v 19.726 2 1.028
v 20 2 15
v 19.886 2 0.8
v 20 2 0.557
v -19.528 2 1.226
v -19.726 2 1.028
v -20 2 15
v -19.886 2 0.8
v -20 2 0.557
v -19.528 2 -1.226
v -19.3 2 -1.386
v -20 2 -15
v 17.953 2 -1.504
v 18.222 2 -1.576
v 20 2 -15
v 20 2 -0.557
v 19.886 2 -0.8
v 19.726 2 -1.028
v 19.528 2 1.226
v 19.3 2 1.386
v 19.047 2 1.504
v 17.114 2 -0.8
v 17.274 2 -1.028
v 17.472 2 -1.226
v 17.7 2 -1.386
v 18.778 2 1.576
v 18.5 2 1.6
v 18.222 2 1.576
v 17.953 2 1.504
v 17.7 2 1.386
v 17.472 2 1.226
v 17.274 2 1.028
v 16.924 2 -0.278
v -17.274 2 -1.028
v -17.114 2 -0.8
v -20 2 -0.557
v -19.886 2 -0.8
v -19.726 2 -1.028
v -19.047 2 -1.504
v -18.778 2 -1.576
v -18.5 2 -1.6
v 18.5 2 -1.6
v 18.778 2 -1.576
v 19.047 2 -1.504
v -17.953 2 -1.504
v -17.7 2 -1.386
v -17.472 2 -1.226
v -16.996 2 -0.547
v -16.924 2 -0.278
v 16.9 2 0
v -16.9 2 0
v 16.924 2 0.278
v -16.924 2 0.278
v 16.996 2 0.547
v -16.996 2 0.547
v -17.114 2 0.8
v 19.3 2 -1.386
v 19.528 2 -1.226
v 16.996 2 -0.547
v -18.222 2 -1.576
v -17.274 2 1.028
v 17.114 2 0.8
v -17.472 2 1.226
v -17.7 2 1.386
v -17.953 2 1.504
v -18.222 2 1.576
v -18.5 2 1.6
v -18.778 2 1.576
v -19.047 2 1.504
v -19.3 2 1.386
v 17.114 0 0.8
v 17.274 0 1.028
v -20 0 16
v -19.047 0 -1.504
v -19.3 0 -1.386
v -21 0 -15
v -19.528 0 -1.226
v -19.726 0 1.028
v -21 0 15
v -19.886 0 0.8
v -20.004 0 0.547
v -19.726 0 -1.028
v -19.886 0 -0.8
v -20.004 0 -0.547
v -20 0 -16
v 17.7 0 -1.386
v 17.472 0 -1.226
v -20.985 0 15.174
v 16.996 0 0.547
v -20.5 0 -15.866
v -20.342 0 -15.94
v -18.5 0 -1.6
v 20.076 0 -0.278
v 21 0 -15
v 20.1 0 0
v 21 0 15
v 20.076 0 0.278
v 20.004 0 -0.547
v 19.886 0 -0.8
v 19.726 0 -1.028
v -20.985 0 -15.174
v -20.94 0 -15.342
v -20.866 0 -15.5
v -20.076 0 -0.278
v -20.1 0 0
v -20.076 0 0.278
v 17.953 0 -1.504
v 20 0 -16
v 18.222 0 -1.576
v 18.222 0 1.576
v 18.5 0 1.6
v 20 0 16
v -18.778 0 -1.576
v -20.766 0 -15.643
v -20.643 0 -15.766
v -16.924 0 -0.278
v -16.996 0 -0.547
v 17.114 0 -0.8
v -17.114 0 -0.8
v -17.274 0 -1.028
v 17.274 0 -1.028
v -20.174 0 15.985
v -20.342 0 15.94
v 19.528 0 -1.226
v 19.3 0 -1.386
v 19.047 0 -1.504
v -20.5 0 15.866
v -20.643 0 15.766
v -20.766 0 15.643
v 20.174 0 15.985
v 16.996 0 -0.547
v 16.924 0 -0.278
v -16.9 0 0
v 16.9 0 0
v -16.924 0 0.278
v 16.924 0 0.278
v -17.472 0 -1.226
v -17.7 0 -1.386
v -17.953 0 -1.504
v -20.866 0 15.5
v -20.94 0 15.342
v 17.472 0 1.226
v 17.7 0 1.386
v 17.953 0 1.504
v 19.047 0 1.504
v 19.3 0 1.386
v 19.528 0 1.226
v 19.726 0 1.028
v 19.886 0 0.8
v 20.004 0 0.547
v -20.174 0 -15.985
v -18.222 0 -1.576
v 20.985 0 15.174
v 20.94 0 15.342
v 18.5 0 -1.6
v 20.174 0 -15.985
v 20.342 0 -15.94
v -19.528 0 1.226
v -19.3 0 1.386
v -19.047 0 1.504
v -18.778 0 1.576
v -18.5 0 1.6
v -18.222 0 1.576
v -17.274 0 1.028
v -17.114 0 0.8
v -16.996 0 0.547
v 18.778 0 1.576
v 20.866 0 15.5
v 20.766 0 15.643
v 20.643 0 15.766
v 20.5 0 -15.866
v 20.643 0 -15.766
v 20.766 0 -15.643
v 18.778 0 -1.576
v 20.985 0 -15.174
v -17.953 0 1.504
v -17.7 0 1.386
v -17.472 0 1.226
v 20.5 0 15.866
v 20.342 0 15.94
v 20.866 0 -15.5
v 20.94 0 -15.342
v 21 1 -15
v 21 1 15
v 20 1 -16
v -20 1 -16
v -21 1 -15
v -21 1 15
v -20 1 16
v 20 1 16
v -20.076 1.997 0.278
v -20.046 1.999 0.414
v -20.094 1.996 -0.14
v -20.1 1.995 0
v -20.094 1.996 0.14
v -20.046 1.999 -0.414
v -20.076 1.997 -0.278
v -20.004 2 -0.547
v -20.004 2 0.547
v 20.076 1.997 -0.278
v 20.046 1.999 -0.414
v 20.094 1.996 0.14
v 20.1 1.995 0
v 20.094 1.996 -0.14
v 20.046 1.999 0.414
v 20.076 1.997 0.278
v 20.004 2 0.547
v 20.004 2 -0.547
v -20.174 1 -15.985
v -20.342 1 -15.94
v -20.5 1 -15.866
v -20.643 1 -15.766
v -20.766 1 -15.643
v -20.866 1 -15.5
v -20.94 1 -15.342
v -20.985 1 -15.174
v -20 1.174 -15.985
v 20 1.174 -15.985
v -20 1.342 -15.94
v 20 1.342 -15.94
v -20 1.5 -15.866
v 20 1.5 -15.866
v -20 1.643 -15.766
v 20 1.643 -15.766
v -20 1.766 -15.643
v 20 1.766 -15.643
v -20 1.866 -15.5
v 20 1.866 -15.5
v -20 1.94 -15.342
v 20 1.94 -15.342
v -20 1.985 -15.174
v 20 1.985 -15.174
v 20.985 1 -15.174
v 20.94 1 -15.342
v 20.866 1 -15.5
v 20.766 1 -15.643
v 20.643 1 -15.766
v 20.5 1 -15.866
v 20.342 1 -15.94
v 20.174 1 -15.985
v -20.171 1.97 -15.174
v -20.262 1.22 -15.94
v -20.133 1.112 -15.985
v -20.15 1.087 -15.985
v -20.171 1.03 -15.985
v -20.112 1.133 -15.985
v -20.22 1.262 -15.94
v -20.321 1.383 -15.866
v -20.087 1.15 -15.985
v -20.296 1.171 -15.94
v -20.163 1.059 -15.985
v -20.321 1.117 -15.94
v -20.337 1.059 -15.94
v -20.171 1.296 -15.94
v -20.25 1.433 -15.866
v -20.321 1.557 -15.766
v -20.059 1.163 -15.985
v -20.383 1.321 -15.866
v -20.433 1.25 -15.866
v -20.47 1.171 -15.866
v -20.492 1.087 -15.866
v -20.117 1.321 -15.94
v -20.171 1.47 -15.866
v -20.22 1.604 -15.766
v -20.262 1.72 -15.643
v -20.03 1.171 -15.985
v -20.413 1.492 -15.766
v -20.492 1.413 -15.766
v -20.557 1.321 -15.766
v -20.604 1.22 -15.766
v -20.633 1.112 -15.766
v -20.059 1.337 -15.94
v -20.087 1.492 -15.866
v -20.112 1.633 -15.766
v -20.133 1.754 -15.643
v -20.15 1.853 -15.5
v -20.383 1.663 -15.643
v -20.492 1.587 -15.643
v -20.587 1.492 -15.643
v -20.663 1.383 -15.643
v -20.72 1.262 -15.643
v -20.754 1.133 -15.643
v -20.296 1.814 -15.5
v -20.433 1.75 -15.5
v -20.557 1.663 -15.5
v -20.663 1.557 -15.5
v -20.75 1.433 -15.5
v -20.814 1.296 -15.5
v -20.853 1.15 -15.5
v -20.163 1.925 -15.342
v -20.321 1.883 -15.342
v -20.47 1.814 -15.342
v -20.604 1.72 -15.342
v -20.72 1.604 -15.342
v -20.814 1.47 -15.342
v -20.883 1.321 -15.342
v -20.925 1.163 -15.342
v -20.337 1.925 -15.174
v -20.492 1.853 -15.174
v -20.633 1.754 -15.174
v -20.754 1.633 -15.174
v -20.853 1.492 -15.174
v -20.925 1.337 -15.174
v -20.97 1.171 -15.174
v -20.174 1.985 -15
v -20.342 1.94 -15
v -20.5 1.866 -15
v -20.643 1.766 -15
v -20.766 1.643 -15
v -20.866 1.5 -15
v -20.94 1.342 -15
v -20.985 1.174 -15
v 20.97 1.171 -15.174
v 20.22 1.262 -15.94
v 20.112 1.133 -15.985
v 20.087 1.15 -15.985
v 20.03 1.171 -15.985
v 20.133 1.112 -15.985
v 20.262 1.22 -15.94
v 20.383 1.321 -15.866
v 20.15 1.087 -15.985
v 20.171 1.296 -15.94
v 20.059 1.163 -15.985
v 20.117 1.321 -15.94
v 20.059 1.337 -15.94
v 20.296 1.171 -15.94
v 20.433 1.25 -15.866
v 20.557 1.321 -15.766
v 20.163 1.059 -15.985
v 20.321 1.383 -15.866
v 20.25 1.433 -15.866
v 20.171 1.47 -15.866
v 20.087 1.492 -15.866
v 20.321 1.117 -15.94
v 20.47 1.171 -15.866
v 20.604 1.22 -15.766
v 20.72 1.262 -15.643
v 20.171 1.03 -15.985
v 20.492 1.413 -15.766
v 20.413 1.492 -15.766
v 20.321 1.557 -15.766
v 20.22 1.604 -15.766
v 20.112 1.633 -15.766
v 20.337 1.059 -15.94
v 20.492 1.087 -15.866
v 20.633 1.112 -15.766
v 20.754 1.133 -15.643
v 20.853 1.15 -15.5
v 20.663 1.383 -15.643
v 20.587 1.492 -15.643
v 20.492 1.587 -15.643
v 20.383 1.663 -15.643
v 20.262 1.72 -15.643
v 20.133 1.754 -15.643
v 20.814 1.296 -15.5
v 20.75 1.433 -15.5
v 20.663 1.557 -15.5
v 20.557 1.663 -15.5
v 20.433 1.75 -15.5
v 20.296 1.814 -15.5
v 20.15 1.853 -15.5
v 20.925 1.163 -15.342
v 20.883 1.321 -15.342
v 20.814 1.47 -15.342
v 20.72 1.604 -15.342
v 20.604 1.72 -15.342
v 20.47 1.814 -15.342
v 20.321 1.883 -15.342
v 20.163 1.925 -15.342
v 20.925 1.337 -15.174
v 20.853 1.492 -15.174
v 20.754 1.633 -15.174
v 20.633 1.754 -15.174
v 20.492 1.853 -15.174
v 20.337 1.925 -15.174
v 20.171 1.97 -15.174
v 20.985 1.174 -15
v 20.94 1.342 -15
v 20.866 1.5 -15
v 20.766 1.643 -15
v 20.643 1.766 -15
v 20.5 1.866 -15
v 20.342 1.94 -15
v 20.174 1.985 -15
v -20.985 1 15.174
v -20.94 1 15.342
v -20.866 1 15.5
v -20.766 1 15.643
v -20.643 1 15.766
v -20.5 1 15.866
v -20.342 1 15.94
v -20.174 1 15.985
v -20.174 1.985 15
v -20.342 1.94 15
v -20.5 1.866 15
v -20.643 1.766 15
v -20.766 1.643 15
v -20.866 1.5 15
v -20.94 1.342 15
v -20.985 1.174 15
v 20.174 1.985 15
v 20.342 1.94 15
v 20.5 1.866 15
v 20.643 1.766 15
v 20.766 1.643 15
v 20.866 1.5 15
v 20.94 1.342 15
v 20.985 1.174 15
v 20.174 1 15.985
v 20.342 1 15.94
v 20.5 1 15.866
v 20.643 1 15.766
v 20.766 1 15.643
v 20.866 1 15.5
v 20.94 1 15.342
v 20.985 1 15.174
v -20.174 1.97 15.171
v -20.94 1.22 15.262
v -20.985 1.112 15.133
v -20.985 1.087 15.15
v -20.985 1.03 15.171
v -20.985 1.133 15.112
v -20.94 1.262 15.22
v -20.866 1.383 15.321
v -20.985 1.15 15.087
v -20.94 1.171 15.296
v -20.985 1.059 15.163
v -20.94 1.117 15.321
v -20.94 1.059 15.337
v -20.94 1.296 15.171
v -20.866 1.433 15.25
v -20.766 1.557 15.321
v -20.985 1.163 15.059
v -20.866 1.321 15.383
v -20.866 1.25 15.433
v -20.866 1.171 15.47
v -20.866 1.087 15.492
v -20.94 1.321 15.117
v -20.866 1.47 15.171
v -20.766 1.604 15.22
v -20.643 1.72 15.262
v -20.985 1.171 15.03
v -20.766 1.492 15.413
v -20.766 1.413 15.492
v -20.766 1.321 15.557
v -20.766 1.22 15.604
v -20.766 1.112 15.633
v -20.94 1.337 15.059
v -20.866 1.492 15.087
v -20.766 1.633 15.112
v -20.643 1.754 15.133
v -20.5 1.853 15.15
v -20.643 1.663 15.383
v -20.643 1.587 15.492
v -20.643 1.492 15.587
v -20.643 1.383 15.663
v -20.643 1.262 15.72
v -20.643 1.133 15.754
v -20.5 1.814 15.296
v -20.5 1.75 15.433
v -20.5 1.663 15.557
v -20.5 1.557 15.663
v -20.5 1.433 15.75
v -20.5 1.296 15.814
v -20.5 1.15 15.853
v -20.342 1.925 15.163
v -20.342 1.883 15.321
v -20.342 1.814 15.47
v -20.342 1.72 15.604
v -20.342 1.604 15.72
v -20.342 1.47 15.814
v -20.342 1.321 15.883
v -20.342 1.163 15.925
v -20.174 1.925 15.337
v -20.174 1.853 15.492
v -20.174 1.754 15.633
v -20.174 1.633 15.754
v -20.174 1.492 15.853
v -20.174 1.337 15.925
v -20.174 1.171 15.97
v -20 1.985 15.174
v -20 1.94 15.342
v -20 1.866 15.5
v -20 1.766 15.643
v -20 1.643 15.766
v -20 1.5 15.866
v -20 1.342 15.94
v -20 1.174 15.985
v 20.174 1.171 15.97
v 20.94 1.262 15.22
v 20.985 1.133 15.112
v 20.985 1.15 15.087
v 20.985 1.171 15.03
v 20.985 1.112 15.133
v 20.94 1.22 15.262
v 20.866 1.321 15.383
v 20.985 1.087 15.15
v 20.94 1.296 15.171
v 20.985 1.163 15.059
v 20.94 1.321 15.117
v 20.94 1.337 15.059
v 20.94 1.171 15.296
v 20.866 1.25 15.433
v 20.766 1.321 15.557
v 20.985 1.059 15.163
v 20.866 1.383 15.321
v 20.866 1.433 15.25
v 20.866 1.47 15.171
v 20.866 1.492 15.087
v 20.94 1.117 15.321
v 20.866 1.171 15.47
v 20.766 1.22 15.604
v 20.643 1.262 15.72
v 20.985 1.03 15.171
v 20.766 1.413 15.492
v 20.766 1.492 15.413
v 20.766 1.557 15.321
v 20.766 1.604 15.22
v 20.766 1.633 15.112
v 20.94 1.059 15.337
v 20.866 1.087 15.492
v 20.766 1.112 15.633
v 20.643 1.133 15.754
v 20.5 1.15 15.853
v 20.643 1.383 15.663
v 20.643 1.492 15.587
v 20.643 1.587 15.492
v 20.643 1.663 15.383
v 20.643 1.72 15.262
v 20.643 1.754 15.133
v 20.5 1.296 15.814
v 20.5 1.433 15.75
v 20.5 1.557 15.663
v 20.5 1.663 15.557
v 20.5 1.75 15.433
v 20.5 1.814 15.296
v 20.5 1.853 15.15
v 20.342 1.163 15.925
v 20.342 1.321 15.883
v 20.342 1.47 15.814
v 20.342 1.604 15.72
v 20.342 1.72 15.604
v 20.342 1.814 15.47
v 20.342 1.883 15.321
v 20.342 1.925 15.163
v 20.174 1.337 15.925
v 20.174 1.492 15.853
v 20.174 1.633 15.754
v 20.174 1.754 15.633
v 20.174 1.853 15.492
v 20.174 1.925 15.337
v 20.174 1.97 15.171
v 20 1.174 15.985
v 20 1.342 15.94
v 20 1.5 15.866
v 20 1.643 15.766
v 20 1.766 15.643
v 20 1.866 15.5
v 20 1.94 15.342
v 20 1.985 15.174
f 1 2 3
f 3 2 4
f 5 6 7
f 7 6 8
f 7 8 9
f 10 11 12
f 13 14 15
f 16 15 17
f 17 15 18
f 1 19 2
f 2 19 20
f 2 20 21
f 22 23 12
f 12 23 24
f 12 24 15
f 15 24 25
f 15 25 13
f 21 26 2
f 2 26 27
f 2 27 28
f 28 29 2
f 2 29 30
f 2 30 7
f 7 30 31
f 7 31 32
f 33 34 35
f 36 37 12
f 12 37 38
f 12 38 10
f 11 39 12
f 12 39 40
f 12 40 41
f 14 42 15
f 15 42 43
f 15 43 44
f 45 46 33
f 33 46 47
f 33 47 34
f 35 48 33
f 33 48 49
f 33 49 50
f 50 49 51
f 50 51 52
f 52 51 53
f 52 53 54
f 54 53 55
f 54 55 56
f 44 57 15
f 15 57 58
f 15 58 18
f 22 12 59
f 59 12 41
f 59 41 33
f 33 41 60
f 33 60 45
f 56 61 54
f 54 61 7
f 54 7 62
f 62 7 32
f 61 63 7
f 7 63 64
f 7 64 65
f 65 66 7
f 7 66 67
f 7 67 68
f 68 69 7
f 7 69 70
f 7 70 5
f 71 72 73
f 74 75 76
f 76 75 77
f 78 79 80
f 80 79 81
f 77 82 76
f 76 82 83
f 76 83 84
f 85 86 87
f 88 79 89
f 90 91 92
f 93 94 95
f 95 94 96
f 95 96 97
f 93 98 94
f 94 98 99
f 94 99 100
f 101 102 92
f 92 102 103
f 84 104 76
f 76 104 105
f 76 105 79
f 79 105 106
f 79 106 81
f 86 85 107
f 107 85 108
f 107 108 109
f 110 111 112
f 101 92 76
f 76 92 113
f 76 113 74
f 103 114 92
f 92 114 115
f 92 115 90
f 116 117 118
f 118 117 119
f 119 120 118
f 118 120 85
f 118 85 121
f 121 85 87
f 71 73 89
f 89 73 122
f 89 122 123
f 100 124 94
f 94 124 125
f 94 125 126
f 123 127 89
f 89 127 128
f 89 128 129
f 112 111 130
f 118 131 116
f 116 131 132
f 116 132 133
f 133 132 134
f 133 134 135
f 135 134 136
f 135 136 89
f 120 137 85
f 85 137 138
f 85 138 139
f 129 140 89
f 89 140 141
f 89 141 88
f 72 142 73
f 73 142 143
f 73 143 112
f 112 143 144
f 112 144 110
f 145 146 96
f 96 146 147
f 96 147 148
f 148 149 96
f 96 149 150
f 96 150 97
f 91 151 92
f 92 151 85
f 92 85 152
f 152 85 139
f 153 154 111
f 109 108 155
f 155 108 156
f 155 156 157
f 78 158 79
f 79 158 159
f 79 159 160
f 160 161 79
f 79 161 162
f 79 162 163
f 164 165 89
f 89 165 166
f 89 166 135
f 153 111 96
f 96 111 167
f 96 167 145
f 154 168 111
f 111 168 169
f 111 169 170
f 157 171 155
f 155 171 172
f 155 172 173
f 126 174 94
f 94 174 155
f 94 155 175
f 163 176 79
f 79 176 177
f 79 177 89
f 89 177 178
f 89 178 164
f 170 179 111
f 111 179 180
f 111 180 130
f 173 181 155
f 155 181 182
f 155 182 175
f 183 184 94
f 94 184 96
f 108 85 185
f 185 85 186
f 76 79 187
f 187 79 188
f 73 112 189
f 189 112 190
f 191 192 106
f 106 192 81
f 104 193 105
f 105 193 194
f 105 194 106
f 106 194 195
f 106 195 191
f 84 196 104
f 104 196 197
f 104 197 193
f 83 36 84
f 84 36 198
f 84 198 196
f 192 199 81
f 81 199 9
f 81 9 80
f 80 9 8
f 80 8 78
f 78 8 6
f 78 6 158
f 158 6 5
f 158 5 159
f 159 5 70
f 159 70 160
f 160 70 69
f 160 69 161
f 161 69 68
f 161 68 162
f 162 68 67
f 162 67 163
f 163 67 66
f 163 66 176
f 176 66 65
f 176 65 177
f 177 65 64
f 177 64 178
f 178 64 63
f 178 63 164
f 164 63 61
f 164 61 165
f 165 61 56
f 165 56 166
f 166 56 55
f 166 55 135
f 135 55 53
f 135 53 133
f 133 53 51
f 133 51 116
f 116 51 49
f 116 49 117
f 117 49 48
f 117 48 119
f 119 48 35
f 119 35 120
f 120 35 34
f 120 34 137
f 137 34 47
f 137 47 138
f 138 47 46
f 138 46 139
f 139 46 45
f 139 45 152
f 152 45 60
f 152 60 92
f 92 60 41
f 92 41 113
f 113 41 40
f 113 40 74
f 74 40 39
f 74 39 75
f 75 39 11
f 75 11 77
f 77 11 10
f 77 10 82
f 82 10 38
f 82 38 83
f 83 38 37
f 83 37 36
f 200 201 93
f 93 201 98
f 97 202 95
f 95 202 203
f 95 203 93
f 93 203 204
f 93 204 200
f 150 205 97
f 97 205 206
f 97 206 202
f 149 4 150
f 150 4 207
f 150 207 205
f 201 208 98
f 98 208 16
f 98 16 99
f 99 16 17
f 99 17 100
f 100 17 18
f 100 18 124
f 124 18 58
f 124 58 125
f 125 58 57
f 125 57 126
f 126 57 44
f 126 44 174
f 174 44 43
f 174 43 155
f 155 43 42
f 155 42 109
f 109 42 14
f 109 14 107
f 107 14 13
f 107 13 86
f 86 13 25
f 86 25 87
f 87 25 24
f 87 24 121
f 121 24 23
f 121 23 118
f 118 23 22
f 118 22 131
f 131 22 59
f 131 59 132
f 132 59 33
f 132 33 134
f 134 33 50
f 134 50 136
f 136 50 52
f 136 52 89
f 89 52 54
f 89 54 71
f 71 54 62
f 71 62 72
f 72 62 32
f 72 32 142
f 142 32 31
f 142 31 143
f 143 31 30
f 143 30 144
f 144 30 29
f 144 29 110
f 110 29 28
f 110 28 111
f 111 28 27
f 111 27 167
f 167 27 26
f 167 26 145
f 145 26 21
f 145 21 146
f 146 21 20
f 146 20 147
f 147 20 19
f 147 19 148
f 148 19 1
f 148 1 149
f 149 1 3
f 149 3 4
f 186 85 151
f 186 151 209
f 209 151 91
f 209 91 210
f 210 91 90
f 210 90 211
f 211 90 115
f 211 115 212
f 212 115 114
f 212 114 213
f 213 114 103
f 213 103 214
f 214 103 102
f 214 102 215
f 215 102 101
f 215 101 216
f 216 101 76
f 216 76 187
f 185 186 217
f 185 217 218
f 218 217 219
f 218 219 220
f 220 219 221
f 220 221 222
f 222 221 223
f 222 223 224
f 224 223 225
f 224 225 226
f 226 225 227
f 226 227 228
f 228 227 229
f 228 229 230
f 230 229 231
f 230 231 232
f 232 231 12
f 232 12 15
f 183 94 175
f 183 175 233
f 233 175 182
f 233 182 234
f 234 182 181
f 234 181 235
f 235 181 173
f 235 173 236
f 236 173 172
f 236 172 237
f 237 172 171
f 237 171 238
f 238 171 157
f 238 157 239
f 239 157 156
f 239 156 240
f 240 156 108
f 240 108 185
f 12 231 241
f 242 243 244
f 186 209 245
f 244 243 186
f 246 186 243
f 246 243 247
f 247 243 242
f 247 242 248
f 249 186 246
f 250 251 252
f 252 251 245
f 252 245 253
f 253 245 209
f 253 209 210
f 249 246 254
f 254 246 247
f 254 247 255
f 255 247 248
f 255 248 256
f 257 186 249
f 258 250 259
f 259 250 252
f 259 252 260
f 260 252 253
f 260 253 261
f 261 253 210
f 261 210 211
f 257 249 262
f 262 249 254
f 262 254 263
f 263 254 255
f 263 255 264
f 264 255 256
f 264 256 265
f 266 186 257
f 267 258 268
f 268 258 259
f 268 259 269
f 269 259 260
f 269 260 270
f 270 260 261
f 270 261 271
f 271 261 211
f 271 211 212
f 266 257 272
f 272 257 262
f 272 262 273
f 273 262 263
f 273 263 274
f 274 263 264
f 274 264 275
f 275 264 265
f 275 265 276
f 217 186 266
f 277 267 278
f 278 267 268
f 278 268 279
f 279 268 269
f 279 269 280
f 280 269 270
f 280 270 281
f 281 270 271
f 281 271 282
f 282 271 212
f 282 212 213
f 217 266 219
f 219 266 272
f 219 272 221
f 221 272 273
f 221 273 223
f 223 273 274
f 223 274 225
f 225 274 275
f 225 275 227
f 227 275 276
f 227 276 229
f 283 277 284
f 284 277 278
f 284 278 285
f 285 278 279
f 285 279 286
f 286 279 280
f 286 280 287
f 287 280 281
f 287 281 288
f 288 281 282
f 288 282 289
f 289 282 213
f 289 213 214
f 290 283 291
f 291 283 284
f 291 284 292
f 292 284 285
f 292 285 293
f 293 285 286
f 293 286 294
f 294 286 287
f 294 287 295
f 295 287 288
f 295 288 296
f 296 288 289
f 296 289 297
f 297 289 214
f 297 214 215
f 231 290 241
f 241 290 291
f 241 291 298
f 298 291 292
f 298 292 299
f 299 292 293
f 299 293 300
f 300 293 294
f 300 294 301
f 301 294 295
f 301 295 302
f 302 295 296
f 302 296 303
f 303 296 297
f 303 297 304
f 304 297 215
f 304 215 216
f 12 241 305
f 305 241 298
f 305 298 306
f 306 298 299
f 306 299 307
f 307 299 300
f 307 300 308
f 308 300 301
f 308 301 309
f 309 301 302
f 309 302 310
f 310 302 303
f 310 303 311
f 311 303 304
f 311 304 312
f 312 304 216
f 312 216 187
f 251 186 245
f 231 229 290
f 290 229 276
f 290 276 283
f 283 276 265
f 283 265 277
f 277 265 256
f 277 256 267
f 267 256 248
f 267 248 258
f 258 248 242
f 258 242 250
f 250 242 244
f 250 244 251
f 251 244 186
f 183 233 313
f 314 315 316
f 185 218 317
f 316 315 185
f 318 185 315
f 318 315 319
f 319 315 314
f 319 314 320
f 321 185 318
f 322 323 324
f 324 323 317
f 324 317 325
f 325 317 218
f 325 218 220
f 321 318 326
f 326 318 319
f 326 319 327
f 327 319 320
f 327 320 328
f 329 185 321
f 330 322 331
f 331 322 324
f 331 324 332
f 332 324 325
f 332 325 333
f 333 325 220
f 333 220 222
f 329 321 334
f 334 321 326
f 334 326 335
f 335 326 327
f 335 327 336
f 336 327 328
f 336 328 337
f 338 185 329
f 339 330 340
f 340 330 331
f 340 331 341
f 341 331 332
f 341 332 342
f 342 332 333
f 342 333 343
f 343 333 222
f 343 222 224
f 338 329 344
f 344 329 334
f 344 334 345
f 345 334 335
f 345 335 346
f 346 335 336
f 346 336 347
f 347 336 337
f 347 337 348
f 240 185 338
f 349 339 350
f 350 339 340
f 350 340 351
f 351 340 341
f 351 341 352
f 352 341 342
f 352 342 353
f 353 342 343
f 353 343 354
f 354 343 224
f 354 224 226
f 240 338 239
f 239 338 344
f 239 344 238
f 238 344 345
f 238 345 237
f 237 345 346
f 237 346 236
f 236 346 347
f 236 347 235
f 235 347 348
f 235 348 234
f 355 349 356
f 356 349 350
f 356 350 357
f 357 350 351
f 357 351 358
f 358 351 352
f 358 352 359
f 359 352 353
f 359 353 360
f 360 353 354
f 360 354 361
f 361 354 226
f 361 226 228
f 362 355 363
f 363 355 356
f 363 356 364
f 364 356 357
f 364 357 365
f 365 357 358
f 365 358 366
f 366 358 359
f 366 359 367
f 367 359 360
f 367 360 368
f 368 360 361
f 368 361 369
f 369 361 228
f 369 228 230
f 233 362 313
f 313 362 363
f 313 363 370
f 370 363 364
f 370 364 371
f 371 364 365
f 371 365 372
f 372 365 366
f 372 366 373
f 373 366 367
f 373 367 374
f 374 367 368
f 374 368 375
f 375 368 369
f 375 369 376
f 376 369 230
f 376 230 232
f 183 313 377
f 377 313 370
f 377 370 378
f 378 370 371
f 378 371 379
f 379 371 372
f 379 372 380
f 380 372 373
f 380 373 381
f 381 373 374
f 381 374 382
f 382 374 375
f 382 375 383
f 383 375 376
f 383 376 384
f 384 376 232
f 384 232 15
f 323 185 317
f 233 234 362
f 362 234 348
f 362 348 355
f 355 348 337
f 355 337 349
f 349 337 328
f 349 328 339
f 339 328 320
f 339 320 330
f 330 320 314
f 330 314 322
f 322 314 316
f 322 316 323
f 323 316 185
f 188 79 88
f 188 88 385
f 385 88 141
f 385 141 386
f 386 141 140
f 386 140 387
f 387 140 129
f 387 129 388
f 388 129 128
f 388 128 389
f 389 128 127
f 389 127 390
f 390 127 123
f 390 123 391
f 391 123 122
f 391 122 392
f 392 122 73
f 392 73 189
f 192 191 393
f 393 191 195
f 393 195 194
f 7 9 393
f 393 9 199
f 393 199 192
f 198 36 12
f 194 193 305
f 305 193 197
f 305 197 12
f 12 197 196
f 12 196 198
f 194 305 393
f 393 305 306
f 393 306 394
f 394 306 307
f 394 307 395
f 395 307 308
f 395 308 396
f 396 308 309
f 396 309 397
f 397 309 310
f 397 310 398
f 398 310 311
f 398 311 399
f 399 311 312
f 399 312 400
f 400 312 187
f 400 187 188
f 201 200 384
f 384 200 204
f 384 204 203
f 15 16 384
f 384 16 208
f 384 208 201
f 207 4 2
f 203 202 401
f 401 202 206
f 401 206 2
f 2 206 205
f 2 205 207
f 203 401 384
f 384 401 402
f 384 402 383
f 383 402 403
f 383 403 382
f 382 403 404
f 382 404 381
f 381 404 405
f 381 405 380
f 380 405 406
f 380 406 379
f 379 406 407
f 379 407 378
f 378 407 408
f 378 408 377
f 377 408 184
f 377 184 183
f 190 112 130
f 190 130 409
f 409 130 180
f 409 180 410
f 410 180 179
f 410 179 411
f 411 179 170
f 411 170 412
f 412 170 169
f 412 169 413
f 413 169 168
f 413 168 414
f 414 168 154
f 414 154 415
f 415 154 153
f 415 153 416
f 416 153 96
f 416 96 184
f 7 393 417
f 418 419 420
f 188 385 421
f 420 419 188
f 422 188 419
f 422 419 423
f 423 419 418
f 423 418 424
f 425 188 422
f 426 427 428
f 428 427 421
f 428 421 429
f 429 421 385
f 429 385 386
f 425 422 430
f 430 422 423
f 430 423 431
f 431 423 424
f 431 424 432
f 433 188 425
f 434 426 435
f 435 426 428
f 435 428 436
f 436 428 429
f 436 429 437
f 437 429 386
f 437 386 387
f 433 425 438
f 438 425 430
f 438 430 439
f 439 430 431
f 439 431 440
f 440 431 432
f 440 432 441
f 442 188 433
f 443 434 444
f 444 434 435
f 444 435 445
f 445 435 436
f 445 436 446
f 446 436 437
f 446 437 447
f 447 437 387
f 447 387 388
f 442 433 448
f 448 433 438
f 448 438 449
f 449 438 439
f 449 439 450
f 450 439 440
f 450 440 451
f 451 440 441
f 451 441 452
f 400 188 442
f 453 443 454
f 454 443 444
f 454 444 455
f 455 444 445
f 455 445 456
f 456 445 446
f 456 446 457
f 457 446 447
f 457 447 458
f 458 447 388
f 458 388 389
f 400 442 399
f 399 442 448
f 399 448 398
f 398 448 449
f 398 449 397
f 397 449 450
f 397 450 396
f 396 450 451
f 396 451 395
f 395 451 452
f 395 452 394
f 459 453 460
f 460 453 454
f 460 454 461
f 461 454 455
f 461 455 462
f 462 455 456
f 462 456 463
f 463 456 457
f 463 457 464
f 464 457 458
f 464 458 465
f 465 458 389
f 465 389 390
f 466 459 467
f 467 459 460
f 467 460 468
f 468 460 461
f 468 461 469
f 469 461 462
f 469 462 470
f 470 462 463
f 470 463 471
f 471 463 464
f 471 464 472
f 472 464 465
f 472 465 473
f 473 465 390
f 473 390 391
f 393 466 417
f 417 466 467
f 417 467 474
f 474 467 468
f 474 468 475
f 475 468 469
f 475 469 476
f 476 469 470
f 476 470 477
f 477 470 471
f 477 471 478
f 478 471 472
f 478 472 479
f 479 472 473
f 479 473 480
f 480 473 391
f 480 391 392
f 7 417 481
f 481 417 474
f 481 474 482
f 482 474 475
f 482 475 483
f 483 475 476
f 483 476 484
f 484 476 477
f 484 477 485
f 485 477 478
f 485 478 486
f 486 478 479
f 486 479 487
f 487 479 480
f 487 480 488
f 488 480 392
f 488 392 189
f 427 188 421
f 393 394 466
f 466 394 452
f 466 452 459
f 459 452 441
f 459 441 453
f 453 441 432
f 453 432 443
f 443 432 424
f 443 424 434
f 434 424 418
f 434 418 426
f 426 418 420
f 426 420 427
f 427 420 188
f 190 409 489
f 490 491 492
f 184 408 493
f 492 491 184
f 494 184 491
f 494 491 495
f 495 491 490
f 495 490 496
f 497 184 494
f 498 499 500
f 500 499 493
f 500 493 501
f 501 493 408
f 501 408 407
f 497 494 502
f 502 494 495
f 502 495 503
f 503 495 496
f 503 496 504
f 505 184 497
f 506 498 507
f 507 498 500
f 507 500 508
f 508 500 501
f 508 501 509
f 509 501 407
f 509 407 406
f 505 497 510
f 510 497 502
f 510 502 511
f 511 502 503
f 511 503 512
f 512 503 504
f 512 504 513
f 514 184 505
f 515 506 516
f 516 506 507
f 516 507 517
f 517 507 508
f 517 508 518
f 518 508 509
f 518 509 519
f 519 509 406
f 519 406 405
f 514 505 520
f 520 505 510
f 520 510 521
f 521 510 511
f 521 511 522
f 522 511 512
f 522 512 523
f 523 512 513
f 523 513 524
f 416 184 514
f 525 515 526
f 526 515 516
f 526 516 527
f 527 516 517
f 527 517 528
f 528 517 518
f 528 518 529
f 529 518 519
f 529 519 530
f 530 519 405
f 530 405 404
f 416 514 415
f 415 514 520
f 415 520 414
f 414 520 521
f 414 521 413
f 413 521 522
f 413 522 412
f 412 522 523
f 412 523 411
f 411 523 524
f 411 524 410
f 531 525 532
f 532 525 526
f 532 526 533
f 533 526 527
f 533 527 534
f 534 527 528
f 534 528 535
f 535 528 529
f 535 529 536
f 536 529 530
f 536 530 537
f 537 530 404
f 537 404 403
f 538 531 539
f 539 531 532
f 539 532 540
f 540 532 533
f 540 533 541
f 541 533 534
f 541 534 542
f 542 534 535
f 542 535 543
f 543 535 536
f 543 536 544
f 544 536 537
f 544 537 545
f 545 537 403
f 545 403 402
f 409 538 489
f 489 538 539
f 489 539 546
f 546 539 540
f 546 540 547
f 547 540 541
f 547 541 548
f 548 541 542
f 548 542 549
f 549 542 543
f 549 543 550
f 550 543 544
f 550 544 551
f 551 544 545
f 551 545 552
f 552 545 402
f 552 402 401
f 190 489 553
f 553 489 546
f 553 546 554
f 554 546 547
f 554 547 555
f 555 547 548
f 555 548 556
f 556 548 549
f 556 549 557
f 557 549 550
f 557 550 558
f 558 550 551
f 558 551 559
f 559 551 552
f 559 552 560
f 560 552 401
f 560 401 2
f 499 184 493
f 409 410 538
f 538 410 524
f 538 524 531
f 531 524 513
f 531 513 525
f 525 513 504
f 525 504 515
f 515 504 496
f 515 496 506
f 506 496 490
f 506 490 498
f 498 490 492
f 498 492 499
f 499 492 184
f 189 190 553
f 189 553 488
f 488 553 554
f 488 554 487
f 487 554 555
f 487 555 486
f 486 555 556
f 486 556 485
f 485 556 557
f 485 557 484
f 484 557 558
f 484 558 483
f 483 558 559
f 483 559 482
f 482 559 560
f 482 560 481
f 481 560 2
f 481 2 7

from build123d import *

# Parameters (mm, degrees)
SKETCH1_W           = 42
SKETCH1_H           = 32
SKETCH1_R           = 1.6
BOSS_EXTRUDE1_DEPTH = 2
FILLET1_R           = 1


with BuildPart() as part:
    # Sketch1 → Boss-Extrude1 (new body)
    with BuildSketch(Plane(origin=(0, 0, 0), x_dir=(1, 0, 0), z_dir=(0, 1, 0))):
        Rectangle(SKETCH1_W, SKETCH1_H)
        with Locations(Location((-18.5, 0, 0), (0, 0, 270))):
            Circle(SKETCH1_R, mode=Mode.SUBTRACT)
        with Locations(Location((18.5, 0, 0), (0, 0, 90))):
            Circle(SKETCH1_R, mode=Mode.SUBTRACT)
    extrude(amount=BOSS_EXTRUDE1_DEPTH)

    # Fillet1
    # the kernel refuses this fillet: 1 mm, written as the material it takes off along each edge
    with BuildSketch(Plane(origin=(-20, 1, -15), x_dir=(-1, 0, 0), z_dir=(0, 0, -1))) as fillet1_piece_1_section:
        Polygon((0, 0), (FILLET1_R, 0), (FILLET1_R, FILLET1_R), (0, FILLET1_R), align=None)
    fillet1_piece_1 = extrude(amount=FILLET1_R, mode=Mode.PRIVATE)
    fillet1_piece_1 = fillet1_piece_1 - Plane(origin=(-20, 1, -15), x_dir=(0.7071067811865475, -0.7071067811865475, 0), z_dir=(0, 0, -1)) * Sphere(FILLET1_R, mode=Mode.PRIVATE)
    add(fillet1_piece_1, mode=Mode.SUBTRACT)
    with BuildSketch(Plane(origin=(-20, 1, 15), x_dir=(-1, 0, 0), z_dir=(0, 0, 1))) as fillet1_piece_2_section:
        Polygon((0, 0), (FILLET1_R, 0), (FILLET1_R, -FILLET1_R), (0, -FILLET1_R), align=None)
    fillet1_piece_2 = extrude(amount=FILLET1_R, mode=Mode.PRIVATE)
    fillet1_piece_2 = fillet1_piece_2 - Plane(origin=(-20, 1, 15), x_dir=(0.7071067811865475, -0.7071067811865475, 0), z_dir=(0, 0, 1)) * Sphere(FILLET1_R, mode=Mode.PRIVATE)
    add(fillet1_piece_2, mode=Mode.SUBTRACT)
    with BuildSketch(Plane(origin=(20, 1, 15), x_dir=(1, 0, 0), z_dir=(0, 0, 1))) as fillet1_piece_3_section:
        Polygon((0, 0), (FILLET1_R, 0), (FILLET1_R, FILLET1_R), (0, FILLET1_R), align=None)
    fillet1_piece_3 = extrude(amount=FILLET1_R, mode=Mode.PRIVATE)
    fillet1_piece_3 = fillet1_piece_3 - Plane(origin=(20, 1, 15), x_dir=(-0.7071067811865475, -0.7071067811865475, 0), z_dir=(0, 0, 1)) * Sphere(FILLET1_R, mode=Mode.PRIVATE)
    add(fillet1_piece_3, mode=Mode.SUBTRACT)
    with BuildSketch(Plane(origin=(20, 1, -15), x_dir=(0, 0, -1), z_dir=(1, 0, 0))) as fillet1_piece_4_section:
        Polygon((0, 0), (FILLET1_R, 0), (FILLET1_R, FILLET1_R), (0, FILLET1_R), align=None)
    fillet1_piece_4 = extrude(amount=FILLET1_R, mode=Mode.PRIVATE)
    fillet1_piece_4 = fillet1_piece_4 - Plane(origin=(20, 1, -15), x_dir=(0, -0.7071067811865475, 0.7071067811865475), z_dir=(1, 0, 0)) * Sphere(FILLET1_R, mode=Mode.PRIVATE)
    add(fillet1_piece_4, mode=Mode.SUBTRACT)
    with BuildSketch(Plane(origin=(-21, 2, -15), x_dir=(0, -1, 0), z_dir=(0, 0, 1)), Plane(origin=(21, 2, 15), x_dir=(0, -1, 0), z_dir=(0, 0, -1))) as fillet1_piece_5:
        with BuildLine():
            CenterArc((FILLET1_R, FILLET1_R), FILLET1_R, 180, 90)
            Line((0, FILLET1_R), (0, 0))
            Line((0, 0), (FILLET1_R, 0))
        make_face()
    extrude(amount=30, mode=Mode.SUBTRACT)
    with BuildSketch(Plane(origin=(-20, 2, 16), x_dir=(0, -1, 0), z_dir=(1, 0, 0)), Plane(origin=(20, 2, -16), x_dir=(0, -1, 0), z_dir=(-1, 0, 0))) as fillet1_piece_6:
        with BuildLine():
            CenterArc((FILLET1_R, FILLET1_R), FILLET1_R, 180, 90)
            Line((0, FILLET1_R), (0, 0))
            Line((0, 0), (FILLET1_R, 0))
        make_face()
    extrude(amount=40, mode=Mode.SUBTRACT)
    with BuildSketch(Plane(origin=(21, -2.5, 16), x_dir=(-1, 0, 0), z_dir=(0, 1, 0)), Plane(origin=(-21, -2.5, -16), x_dir=(1, 0, 0), z_dir=(0, 1, 0)), Plane(origin=(21, -2.5, -16), x_dir=(0, 0, 1), z_dir=(0, 1, 0))) as fillet1_piece_7:
        with BuildLine():
            CenterArc((FILLET1_R, -FILLET1_R), FILLET1_R, 90, 90)
            Line((0, -FILLET1_R), (0, 0))
            Line((0, 0), (FILLET1_R, 0))
        make_face()
    extrude(amount=3.5, mode=Mode.SUBTRACT)
    with BuildSketch(Plane(origin=(-21, -2.5, 16), x_dir=(1, 0, 0), z_dir=(0, 1, 0))) as fillet1_piece_8:
        with BuildLine():
            CenterArc((FILLET1_R, FILLET1_R), FILLET1_R, 180, 90)
            Line((0, FILLET1_R), (0, 0))
            Line((0, 0), (FILLET1_R, 0))
        make_face()
    extrude(amount=3.5, mode=Mode.SUBTRACT)


solid = part.part
